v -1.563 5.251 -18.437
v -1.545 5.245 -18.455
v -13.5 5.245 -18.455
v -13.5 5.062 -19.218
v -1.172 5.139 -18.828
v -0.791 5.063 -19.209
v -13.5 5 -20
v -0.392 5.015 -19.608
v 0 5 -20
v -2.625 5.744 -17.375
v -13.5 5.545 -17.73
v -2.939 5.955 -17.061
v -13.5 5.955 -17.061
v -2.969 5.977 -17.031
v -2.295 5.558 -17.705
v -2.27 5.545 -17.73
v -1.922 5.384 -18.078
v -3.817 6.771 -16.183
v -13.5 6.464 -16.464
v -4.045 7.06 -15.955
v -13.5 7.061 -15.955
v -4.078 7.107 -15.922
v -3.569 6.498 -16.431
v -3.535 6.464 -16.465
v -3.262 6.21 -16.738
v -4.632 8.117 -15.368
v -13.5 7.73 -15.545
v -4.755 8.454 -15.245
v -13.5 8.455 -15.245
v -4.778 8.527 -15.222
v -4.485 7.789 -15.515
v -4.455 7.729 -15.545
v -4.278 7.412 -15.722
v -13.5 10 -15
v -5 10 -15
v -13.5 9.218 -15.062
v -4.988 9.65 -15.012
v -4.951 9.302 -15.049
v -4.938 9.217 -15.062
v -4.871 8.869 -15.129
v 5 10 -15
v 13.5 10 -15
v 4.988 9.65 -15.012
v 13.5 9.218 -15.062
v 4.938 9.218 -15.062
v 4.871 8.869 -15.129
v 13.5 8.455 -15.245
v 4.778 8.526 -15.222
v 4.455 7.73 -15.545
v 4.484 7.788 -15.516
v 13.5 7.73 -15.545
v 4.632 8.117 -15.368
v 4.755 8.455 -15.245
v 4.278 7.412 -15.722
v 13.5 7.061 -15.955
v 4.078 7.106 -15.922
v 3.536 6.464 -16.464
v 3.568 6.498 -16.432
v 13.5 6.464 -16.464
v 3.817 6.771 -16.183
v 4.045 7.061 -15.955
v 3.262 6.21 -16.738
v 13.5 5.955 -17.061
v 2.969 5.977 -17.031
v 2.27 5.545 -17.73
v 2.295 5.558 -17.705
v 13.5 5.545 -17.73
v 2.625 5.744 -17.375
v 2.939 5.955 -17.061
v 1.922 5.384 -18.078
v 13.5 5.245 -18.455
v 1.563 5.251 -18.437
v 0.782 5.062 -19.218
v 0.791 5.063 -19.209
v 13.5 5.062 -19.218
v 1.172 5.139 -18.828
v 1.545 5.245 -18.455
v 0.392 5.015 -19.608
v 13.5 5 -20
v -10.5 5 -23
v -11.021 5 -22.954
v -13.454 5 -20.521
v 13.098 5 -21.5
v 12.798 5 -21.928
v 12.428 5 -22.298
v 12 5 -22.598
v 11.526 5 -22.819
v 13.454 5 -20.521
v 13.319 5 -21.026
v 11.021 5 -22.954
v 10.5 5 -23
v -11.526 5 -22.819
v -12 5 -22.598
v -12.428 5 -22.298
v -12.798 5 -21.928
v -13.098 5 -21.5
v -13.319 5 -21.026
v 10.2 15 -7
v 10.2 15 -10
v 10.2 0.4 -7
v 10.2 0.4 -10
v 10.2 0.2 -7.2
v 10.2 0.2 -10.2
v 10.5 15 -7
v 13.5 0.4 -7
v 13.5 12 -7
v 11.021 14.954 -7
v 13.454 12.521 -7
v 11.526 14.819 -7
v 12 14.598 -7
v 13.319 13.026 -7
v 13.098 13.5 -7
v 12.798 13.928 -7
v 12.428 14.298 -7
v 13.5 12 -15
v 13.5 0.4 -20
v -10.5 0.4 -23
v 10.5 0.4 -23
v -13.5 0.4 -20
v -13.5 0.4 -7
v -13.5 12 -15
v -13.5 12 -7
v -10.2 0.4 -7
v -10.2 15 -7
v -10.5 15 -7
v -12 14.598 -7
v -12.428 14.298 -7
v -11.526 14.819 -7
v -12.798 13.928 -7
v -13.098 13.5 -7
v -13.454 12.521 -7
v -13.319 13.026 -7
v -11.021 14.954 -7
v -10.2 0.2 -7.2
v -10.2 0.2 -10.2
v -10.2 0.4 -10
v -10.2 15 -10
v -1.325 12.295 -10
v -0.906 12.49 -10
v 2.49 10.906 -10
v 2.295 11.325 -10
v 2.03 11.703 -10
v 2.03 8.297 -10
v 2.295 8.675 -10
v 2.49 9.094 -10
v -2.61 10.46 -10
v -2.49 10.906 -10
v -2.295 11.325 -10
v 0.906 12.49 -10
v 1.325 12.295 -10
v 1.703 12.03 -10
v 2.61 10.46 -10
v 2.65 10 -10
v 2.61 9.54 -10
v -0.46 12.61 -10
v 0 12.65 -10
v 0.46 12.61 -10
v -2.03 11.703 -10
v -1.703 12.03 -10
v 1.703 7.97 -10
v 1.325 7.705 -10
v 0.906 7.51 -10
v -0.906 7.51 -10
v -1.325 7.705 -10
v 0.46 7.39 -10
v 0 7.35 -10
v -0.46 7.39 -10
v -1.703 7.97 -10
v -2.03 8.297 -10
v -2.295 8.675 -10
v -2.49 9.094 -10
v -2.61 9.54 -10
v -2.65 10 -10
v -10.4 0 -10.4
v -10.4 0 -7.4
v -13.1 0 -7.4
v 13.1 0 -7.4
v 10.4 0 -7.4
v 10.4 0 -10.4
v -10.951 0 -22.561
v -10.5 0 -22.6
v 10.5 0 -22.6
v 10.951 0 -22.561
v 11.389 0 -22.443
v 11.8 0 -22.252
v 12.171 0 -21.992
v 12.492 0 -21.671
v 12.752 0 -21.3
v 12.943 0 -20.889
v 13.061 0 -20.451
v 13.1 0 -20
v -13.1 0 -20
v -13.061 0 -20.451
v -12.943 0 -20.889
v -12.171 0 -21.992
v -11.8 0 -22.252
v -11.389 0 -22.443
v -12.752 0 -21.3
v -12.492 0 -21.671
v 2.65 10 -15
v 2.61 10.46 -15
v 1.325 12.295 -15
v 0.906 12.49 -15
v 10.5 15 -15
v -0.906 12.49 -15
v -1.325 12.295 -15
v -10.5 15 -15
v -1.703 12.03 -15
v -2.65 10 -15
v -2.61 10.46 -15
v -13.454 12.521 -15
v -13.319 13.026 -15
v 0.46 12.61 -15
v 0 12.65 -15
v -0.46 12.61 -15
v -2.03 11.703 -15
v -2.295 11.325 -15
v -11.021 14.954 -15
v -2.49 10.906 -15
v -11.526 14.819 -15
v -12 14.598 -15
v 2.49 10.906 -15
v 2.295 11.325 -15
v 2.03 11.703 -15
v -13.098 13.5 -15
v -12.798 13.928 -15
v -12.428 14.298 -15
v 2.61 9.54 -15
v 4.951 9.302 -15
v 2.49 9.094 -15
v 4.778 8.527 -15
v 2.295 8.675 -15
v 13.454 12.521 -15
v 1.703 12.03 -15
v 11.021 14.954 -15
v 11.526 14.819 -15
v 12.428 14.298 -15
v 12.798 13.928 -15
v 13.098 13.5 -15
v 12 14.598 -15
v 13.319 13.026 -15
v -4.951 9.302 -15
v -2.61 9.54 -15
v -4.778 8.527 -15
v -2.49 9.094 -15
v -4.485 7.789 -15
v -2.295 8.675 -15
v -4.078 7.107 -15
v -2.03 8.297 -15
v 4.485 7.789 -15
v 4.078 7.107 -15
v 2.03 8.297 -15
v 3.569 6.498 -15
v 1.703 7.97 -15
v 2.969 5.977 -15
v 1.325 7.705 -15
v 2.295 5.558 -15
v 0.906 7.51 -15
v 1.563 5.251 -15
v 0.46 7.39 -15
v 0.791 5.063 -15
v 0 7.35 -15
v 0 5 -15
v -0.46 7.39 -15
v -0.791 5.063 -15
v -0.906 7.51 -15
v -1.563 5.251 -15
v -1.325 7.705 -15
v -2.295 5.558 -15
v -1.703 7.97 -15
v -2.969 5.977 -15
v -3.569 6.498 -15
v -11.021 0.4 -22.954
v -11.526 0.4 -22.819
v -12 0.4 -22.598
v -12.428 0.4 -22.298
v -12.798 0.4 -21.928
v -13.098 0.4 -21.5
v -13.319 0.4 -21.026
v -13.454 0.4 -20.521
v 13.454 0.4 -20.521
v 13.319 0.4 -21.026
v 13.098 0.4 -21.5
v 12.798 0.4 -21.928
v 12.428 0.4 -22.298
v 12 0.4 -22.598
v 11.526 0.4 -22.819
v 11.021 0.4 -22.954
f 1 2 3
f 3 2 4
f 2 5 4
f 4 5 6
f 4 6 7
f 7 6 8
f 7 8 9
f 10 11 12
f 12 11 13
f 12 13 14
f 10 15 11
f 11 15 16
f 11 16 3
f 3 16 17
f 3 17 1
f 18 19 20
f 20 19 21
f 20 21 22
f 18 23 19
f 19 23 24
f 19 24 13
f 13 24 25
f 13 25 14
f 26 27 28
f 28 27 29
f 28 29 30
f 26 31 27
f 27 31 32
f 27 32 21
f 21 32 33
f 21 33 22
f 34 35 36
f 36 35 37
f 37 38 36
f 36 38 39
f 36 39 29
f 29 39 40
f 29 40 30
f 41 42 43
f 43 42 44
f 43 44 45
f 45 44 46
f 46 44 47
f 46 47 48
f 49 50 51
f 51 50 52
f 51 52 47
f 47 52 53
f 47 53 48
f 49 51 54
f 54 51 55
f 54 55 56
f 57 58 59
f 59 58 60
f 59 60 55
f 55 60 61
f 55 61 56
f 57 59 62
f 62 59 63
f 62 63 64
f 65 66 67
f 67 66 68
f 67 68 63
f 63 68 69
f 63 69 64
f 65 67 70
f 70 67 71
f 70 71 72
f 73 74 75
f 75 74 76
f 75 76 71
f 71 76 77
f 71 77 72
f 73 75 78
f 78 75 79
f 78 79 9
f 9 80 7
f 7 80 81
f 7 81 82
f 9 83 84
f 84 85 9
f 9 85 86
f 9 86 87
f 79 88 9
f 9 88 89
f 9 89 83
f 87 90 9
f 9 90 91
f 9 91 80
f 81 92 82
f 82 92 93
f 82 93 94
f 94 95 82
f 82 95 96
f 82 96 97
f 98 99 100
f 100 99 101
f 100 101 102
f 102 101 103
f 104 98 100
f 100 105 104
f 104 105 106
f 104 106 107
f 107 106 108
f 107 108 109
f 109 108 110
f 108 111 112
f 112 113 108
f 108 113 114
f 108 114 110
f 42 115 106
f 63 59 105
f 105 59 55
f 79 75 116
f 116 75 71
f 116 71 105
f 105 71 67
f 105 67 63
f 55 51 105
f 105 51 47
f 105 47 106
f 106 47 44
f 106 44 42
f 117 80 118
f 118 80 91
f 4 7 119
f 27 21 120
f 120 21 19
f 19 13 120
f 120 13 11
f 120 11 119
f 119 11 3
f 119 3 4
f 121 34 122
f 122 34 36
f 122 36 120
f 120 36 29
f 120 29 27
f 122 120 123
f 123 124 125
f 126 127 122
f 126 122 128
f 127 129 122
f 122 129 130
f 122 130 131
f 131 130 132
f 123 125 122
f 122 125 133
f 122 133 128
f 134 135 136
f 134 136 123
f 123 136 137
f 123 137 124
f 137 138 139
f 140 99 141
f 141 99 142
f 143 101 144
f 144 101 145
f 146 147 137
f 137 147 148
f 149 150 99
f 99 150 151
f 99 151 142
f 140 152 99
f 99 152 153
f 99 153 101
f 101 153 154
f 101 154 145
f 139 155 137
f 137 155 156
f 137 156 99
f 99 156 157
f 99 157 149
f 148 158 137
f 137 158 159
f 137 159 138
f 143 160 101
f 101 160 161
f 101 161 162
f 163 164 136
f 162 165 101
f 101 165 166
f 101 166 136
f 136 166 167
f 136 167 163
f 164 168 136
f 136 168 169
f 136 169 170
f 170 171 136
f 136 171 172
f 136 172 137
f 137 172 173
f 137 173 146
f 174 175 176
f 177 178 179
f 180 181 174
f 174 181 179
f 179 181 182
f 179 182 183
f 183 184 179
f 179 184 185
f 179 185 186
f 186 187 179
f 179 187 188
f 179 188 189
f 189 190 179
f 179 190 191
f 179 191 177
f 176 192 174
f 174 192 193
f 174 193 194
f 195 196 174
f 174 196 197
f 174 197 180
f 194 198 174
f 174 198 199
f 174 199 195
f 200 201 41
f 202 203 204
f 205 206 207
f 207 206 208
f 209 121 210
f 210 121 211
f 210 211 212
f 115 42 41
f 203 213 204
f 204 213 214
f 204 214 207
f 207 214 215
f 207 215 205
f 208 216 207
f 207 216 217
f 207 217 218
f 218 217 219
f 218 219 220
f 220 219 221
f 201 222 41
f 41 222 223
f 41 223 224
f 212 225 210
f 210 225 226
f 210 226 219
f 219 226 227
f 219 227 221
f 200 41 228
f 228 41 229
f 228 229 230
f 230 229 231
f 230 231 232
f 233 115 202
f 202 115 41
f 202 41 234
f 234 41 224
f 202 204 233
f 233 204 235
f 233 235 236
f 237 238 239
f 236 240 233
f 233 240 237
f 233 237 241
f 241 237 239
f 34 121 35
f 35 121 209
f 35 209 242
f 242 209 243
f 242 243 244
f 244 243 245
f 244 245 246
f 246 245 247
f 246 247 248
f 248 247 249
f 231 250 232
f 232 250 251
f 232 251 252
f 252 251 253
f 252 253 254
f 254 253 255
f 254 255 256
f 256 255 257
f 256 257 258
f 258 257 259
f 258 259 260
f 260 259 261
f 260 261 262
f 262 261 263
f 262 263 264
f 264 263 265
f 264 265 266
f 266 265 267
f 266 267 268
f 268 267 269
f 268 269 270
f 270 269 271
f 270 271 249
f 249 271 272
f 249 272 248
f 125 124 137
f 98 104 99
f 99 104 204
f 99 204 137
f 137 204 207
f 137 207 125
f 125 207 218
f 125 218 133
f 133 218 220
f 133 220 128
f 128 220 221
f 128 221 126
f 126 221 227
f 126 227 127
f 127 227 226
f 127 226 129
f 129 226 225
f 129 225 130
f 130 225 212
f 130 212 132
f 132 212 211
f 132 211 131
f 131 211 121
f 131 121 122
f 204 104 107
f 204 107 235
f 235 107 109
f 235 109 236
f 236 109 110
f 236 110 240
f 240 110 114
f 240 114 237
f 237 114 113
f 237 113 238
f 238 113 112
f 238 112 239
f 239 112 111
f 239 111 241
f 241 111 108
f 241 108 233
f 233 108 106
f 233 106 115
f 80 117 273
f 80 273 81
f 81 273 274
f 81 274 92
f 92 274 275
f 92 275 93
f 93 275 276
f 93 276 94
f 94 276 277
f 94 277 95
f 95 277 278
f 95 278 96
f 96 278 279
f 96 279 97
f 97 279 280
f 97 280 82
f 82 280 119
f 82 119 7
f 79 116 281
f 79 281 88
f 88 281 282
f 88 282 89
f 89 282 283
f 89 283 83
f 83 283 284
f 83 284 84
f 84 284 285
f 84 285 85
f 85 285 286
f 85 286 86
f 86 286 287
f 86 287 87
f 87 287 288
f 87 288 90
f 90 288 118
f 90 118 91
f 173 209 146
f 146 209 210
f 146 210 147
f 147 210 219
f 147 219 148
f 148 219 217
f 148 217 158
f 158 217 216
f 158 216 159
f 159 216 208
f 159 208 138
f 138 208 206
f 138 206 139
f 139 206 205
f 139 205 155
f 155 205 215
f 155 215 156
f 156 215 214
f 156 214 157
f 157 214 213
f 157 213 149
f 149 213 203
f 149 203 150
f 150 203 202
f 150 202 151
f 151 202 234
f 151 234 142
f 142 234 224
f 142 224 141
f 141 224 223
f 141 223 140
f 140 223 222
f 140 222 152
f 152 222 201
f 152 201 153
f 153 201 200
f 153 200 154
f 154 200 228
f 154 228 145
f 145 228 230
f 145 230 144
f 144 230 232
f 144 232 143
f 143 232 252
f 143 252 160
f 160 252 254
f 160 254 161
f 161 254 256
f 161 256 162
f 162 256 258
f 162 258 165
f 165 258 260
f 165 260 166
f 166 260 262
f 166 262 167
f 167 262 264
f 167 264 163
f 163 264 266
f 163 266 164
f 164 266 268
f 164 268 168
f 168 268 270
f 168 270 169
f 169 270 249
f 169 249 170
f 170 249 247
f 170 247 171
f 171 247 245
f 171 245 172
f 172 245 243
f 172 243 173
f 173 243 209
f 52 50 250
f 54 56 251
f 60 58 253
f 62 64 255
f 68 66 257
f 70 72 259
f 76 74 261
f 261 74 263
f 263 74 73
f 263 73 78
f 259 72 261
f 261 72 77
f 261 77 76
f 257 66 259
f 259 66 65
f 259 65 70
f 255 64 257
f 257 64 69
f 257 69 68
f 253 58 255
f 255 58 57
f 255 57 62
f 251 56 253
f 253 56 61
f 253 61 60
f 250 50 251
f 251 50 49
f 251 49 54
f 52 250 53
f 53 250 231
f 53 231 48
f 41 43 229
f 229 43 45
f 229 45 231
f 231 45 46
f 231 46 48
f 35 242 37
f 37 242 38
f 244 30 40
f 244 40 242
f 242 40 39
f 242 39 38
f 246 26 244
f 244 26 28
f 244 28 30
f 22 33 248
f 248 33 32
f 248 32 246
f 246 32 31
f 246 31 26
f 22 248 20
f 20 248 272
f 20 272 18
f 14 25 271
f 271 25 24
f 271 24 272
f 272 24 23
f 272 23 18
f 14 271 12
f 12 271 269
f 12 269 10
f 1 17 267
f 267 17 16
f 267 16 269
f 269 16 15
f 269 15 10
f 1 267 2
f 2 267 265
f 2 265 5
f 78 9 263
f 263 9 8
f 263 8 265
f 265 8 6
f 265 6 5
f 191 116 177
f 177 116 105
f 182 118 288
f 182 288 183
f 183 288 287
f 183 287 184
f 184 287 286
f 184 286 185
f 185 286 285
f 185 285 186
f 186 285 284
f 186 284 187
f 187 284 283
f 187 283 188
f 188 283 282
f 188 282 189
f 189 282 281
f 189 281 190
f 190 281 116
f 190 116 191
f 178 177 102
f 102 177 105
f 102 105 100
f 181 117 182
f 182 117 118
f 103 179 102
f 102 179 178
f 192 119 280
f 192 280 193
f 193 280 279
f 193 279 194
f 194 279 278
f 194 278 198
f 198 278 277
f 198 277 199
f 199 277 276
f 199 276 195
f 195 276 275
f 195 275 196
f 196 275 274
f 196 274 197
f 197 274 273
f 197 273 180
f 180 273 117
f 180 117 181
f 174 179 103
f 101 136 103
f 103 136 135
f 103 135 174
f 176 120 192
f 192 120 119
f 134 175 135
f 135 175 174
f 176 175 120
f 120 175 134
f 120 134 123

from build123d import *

# Parameters (mm, degrees)
BOSS_EXTRUDE1_DEPTH = 5
BOSS_EXTRUDE2_DEPTH = 10
FILLET1_R           = 5
FILLET2_R           = 3
SKETCH4_R           = 2.65
CUT_EXTRUDE1_DEPTH  = 22.708293346
SKETCH5_R           = 5
CUT_EXTRUDE2_DEPTH  = 22.708293346
CHAMFER1_SIZE       = 0.4
MOVE_START          = -10.2
MOVE_FACE1_DEPTH    = 20.4


with BuildPart() as part:
    # Sketch2 → Boss-Extrude1 (new body)
    with BuildSketch(Plane(origin=(0, 0, 0), x_dir=(1, 0, 0), z_dir=(0, 1, 0))):
        Polygon((-10, 10), (-10, 7), (-13.5, 7), (-13.5, 23), (13.5, 23), (13.5, 7), (10, 7), (10, 10), align=None)
    extrude(amount=BOSS_EXTRUDE1_DEPTH)

    # Sketch3 → Boss-Extrude2 (add)
    with BuildSketch(Plane(origin=(0, 5, 0), x_dir=(1, 0, 0), z_dir=(0, 1, 0))):
        Polygon((10, 7), (13.5, 7), (13.5, 15), (-13.5, 15), (-13.5, 7), (-10, 7), (-10, 10), (10, 10), align=None)
    extrude(amount=BOSS_EXTRUDE2_DEPTH)

    # Fillet1
    fillet1_edges = [part.edges().sort_by_distance(p)[0] for p in [
        (0, 5, -15),
    ]]
    fillet(fillet1_edges, radius=FILLET1_R)

    # Fillet2
    fillet2_edges = [part.edges().sort_by_distance(p)[0] for p in [
        (-13.5, 2.5, -23),
        (13.5, 2.5, -23),
        (-13.5, 15, -11),
        (13.5, 15, -11),
    ]]
    fillet(fillet2_edges, radius=FILLET2_R)

    # Sketch4 → Cut-Extrude1 (cut, through all)
    with BuildSketch(Plane(origin=(0, 0, -15), x_dir=(-1, 0, 0), z_dir=(0, 0, -1))):
        with Locations((0, 10)):
            Circle(SKETCH4_R)
    extrude(amount=-CUT_EXTRUDE1_DEPTH, mode=Mode.SUBTRACT)

    # Sketch5 → Cut-Extrude2 (cut, through all)
    with BuildSketch(Plane(origin=(0, 0, -15), x_dir=(-1, 0, 0), z_dir=(0, 0, -1))):
        with Locations((0, 10)):
            Circle(SKETCH5_R)
    extrude(amount=CUT_EXTRUDE2_DEPTH, mode=Mode.SUBTRACT)

    # Chamfer1
    chamfer1_edges = [part.edges().sort_by_distance(p)[0] for p in [
        (13.5, 0, -13.5),
        (11.75, 0, -7),
        (10, 0, -8.5),
        (-13.5, 0, -13.5),
        (0, 0, -23),
        (12.621320344, 0, -22.121320344),
        (-12.621320344, 0, -22.121320344),
        (0, 0, -10),
        (-10, 0, -8.5),
        (-11.75, 0, -7),
    ]]
    chamfer(chamfer1_edges, length=CHAMFER1_SIZE)

    # Move Face1: read off the stored shape, not the designer's step
    # Move Face1 outline → Move Face1 (cut)
    with BuildSketch(Plane.YZ.offset(MOVE_START)):
        Polygon((0.4, -10), (15, -10), (15, -7), (0.4, -7), (0.2, -7.2), (0.2, -10.2), align=None)
    extrude(amount=MOVE_FACE1_DEPTH, mode=Mode.SUBTRACT)


solid = part.part
